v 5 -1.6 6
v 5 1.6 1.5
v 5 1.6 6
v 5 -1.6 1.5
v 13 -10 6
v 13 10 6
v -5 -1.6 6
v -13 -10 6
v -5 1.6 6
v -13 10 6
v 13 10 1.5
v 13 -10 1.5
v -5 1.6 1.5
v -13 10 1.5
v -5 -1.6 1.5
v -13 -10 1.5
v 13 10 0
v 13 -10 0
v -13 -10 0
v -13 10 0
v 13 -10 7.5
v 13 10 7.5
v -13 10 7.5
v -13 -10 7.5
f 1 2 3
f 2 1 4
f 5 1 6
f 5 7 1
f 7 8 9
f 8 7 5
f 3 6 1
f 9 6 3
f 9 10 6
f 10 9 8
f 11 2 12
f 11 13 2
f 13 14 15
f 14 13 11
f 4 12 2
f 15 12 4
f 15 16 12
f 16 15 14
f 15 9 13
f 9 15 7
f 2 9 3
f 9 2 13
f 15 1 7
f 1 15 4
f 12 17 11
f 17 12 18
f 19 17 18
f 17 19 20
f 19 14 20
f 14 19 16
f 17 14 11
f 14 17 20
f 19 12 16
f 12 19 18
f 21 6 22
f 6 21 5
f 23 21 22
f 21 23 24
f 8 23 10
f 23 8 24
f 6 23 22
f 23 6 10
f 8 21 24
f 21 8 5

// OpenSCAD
// Gen-E pancake coil former — 9 needed; window for outer-ring linkage

core_w          = 10.0;
core_h          = 3.2;
flange_od_x     = 26.0;
flange_od_y     = 20.0;
flange_t        = 1.5;
wind_h          = 4.5;        // axial winding build per side of mid-plane former
$fn = 48;

module former() {
    // winding core
    translate([-core_w/2, -core_h/2, flange_t])
        cube([core_w, core_h, wind_h]);
    // flanges
    translate([-flange_od_x/2, -flange_od_y/2, 0])
        cube([flange_od_x, flange_od_y, flange_t]);
    translate([-flange_od_x/2, -flange_od_y/2, flange_t + wind_h])
        cube([flange_od_x, flange_od_y, flange_t]);
}
former();
